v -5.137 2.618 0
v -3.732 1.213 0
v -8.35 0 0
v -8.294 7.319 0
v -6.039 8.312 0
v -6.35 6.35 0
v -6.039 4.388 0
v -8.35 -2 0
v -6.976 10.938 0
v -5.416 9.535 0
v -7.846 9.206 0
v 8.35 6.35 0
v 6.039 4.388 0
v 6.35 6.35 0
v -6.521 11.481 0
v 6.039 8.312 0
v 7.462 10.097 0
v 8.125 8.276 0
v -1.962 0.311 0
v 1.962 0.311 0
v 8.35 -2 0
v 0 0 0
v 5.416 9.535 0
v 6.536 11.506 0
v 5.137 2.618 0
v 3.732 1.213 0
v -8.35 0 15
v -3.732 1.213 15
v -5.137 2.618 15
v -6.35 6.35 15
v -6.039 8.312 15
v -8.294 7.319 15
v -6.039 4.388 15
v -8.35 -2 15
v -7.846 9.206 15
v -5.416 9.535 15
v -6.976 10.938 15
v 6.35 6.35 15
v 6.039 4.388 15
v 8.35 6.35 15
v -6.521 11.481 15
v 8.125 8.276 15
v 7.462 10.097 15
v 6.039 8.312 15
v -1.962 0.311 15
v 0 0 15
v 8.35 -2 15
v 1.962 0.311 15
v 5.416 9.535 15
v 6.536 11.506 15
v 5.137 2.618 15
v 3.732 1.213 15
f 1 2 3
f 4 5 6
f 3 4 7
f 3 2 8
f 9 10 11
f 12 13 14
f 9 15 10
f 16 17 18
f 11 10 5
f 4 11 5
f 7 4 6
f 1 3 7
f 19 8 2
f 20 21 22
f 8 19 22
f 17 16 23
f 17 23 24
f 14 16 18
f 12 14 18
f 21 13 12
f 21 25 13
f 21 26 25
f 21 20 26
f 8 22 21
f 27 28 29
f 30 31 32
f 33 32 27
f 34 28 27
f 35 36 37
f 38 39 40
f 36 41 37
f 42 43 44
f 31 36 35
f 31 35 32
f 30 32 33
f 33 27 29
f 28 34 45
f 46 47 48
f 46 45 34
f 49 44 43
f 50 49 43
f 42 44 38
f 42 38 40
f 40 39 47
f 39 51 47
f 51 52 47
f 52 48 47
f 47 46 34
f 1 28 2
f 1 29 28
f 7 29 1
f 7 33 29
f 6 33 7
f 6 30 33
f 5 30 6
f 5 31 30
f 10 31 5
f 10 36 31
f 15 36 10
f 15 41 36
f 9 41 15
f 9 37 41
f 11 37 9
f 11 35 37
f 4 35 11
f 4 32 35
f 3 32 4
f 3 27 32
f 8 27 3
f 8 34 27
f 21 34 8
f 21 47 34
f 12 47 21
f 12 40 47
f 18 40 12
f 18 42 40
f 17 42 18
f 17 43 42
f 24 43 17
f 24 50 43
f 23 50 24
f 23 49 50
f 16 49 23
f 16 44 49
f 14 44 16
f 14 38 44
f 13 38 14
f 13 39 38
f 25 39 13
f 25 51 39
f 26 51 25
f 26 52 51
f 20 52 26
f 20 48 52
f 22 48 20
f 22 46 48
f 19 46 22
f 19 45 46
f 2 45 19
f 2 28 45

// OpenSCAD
rope_diam = 12.7;
base_length = 15;
clip_thickness = 2;
clip_width = 10;

linear_extrude(base_length) difference() {
  hull() {
    translate([0,rope_diam/2]) circle(d=rope_diam + 2*clip_thickness);
    translate([0,-clip_thickness/2])
      square([rope_diam + 2*clip_thickness,clip_thickness],center=true);
  }
  translate([0,rope_diam/2]) circle(d=rope_diam);
  polygon([
    [rope_diam/2 + clip_thickness,rope_diam+clip_thickness],
    [0,0],
    [-rope_diam/2 - clip_thickness,rope_diam+clip_thickness],]);
}
